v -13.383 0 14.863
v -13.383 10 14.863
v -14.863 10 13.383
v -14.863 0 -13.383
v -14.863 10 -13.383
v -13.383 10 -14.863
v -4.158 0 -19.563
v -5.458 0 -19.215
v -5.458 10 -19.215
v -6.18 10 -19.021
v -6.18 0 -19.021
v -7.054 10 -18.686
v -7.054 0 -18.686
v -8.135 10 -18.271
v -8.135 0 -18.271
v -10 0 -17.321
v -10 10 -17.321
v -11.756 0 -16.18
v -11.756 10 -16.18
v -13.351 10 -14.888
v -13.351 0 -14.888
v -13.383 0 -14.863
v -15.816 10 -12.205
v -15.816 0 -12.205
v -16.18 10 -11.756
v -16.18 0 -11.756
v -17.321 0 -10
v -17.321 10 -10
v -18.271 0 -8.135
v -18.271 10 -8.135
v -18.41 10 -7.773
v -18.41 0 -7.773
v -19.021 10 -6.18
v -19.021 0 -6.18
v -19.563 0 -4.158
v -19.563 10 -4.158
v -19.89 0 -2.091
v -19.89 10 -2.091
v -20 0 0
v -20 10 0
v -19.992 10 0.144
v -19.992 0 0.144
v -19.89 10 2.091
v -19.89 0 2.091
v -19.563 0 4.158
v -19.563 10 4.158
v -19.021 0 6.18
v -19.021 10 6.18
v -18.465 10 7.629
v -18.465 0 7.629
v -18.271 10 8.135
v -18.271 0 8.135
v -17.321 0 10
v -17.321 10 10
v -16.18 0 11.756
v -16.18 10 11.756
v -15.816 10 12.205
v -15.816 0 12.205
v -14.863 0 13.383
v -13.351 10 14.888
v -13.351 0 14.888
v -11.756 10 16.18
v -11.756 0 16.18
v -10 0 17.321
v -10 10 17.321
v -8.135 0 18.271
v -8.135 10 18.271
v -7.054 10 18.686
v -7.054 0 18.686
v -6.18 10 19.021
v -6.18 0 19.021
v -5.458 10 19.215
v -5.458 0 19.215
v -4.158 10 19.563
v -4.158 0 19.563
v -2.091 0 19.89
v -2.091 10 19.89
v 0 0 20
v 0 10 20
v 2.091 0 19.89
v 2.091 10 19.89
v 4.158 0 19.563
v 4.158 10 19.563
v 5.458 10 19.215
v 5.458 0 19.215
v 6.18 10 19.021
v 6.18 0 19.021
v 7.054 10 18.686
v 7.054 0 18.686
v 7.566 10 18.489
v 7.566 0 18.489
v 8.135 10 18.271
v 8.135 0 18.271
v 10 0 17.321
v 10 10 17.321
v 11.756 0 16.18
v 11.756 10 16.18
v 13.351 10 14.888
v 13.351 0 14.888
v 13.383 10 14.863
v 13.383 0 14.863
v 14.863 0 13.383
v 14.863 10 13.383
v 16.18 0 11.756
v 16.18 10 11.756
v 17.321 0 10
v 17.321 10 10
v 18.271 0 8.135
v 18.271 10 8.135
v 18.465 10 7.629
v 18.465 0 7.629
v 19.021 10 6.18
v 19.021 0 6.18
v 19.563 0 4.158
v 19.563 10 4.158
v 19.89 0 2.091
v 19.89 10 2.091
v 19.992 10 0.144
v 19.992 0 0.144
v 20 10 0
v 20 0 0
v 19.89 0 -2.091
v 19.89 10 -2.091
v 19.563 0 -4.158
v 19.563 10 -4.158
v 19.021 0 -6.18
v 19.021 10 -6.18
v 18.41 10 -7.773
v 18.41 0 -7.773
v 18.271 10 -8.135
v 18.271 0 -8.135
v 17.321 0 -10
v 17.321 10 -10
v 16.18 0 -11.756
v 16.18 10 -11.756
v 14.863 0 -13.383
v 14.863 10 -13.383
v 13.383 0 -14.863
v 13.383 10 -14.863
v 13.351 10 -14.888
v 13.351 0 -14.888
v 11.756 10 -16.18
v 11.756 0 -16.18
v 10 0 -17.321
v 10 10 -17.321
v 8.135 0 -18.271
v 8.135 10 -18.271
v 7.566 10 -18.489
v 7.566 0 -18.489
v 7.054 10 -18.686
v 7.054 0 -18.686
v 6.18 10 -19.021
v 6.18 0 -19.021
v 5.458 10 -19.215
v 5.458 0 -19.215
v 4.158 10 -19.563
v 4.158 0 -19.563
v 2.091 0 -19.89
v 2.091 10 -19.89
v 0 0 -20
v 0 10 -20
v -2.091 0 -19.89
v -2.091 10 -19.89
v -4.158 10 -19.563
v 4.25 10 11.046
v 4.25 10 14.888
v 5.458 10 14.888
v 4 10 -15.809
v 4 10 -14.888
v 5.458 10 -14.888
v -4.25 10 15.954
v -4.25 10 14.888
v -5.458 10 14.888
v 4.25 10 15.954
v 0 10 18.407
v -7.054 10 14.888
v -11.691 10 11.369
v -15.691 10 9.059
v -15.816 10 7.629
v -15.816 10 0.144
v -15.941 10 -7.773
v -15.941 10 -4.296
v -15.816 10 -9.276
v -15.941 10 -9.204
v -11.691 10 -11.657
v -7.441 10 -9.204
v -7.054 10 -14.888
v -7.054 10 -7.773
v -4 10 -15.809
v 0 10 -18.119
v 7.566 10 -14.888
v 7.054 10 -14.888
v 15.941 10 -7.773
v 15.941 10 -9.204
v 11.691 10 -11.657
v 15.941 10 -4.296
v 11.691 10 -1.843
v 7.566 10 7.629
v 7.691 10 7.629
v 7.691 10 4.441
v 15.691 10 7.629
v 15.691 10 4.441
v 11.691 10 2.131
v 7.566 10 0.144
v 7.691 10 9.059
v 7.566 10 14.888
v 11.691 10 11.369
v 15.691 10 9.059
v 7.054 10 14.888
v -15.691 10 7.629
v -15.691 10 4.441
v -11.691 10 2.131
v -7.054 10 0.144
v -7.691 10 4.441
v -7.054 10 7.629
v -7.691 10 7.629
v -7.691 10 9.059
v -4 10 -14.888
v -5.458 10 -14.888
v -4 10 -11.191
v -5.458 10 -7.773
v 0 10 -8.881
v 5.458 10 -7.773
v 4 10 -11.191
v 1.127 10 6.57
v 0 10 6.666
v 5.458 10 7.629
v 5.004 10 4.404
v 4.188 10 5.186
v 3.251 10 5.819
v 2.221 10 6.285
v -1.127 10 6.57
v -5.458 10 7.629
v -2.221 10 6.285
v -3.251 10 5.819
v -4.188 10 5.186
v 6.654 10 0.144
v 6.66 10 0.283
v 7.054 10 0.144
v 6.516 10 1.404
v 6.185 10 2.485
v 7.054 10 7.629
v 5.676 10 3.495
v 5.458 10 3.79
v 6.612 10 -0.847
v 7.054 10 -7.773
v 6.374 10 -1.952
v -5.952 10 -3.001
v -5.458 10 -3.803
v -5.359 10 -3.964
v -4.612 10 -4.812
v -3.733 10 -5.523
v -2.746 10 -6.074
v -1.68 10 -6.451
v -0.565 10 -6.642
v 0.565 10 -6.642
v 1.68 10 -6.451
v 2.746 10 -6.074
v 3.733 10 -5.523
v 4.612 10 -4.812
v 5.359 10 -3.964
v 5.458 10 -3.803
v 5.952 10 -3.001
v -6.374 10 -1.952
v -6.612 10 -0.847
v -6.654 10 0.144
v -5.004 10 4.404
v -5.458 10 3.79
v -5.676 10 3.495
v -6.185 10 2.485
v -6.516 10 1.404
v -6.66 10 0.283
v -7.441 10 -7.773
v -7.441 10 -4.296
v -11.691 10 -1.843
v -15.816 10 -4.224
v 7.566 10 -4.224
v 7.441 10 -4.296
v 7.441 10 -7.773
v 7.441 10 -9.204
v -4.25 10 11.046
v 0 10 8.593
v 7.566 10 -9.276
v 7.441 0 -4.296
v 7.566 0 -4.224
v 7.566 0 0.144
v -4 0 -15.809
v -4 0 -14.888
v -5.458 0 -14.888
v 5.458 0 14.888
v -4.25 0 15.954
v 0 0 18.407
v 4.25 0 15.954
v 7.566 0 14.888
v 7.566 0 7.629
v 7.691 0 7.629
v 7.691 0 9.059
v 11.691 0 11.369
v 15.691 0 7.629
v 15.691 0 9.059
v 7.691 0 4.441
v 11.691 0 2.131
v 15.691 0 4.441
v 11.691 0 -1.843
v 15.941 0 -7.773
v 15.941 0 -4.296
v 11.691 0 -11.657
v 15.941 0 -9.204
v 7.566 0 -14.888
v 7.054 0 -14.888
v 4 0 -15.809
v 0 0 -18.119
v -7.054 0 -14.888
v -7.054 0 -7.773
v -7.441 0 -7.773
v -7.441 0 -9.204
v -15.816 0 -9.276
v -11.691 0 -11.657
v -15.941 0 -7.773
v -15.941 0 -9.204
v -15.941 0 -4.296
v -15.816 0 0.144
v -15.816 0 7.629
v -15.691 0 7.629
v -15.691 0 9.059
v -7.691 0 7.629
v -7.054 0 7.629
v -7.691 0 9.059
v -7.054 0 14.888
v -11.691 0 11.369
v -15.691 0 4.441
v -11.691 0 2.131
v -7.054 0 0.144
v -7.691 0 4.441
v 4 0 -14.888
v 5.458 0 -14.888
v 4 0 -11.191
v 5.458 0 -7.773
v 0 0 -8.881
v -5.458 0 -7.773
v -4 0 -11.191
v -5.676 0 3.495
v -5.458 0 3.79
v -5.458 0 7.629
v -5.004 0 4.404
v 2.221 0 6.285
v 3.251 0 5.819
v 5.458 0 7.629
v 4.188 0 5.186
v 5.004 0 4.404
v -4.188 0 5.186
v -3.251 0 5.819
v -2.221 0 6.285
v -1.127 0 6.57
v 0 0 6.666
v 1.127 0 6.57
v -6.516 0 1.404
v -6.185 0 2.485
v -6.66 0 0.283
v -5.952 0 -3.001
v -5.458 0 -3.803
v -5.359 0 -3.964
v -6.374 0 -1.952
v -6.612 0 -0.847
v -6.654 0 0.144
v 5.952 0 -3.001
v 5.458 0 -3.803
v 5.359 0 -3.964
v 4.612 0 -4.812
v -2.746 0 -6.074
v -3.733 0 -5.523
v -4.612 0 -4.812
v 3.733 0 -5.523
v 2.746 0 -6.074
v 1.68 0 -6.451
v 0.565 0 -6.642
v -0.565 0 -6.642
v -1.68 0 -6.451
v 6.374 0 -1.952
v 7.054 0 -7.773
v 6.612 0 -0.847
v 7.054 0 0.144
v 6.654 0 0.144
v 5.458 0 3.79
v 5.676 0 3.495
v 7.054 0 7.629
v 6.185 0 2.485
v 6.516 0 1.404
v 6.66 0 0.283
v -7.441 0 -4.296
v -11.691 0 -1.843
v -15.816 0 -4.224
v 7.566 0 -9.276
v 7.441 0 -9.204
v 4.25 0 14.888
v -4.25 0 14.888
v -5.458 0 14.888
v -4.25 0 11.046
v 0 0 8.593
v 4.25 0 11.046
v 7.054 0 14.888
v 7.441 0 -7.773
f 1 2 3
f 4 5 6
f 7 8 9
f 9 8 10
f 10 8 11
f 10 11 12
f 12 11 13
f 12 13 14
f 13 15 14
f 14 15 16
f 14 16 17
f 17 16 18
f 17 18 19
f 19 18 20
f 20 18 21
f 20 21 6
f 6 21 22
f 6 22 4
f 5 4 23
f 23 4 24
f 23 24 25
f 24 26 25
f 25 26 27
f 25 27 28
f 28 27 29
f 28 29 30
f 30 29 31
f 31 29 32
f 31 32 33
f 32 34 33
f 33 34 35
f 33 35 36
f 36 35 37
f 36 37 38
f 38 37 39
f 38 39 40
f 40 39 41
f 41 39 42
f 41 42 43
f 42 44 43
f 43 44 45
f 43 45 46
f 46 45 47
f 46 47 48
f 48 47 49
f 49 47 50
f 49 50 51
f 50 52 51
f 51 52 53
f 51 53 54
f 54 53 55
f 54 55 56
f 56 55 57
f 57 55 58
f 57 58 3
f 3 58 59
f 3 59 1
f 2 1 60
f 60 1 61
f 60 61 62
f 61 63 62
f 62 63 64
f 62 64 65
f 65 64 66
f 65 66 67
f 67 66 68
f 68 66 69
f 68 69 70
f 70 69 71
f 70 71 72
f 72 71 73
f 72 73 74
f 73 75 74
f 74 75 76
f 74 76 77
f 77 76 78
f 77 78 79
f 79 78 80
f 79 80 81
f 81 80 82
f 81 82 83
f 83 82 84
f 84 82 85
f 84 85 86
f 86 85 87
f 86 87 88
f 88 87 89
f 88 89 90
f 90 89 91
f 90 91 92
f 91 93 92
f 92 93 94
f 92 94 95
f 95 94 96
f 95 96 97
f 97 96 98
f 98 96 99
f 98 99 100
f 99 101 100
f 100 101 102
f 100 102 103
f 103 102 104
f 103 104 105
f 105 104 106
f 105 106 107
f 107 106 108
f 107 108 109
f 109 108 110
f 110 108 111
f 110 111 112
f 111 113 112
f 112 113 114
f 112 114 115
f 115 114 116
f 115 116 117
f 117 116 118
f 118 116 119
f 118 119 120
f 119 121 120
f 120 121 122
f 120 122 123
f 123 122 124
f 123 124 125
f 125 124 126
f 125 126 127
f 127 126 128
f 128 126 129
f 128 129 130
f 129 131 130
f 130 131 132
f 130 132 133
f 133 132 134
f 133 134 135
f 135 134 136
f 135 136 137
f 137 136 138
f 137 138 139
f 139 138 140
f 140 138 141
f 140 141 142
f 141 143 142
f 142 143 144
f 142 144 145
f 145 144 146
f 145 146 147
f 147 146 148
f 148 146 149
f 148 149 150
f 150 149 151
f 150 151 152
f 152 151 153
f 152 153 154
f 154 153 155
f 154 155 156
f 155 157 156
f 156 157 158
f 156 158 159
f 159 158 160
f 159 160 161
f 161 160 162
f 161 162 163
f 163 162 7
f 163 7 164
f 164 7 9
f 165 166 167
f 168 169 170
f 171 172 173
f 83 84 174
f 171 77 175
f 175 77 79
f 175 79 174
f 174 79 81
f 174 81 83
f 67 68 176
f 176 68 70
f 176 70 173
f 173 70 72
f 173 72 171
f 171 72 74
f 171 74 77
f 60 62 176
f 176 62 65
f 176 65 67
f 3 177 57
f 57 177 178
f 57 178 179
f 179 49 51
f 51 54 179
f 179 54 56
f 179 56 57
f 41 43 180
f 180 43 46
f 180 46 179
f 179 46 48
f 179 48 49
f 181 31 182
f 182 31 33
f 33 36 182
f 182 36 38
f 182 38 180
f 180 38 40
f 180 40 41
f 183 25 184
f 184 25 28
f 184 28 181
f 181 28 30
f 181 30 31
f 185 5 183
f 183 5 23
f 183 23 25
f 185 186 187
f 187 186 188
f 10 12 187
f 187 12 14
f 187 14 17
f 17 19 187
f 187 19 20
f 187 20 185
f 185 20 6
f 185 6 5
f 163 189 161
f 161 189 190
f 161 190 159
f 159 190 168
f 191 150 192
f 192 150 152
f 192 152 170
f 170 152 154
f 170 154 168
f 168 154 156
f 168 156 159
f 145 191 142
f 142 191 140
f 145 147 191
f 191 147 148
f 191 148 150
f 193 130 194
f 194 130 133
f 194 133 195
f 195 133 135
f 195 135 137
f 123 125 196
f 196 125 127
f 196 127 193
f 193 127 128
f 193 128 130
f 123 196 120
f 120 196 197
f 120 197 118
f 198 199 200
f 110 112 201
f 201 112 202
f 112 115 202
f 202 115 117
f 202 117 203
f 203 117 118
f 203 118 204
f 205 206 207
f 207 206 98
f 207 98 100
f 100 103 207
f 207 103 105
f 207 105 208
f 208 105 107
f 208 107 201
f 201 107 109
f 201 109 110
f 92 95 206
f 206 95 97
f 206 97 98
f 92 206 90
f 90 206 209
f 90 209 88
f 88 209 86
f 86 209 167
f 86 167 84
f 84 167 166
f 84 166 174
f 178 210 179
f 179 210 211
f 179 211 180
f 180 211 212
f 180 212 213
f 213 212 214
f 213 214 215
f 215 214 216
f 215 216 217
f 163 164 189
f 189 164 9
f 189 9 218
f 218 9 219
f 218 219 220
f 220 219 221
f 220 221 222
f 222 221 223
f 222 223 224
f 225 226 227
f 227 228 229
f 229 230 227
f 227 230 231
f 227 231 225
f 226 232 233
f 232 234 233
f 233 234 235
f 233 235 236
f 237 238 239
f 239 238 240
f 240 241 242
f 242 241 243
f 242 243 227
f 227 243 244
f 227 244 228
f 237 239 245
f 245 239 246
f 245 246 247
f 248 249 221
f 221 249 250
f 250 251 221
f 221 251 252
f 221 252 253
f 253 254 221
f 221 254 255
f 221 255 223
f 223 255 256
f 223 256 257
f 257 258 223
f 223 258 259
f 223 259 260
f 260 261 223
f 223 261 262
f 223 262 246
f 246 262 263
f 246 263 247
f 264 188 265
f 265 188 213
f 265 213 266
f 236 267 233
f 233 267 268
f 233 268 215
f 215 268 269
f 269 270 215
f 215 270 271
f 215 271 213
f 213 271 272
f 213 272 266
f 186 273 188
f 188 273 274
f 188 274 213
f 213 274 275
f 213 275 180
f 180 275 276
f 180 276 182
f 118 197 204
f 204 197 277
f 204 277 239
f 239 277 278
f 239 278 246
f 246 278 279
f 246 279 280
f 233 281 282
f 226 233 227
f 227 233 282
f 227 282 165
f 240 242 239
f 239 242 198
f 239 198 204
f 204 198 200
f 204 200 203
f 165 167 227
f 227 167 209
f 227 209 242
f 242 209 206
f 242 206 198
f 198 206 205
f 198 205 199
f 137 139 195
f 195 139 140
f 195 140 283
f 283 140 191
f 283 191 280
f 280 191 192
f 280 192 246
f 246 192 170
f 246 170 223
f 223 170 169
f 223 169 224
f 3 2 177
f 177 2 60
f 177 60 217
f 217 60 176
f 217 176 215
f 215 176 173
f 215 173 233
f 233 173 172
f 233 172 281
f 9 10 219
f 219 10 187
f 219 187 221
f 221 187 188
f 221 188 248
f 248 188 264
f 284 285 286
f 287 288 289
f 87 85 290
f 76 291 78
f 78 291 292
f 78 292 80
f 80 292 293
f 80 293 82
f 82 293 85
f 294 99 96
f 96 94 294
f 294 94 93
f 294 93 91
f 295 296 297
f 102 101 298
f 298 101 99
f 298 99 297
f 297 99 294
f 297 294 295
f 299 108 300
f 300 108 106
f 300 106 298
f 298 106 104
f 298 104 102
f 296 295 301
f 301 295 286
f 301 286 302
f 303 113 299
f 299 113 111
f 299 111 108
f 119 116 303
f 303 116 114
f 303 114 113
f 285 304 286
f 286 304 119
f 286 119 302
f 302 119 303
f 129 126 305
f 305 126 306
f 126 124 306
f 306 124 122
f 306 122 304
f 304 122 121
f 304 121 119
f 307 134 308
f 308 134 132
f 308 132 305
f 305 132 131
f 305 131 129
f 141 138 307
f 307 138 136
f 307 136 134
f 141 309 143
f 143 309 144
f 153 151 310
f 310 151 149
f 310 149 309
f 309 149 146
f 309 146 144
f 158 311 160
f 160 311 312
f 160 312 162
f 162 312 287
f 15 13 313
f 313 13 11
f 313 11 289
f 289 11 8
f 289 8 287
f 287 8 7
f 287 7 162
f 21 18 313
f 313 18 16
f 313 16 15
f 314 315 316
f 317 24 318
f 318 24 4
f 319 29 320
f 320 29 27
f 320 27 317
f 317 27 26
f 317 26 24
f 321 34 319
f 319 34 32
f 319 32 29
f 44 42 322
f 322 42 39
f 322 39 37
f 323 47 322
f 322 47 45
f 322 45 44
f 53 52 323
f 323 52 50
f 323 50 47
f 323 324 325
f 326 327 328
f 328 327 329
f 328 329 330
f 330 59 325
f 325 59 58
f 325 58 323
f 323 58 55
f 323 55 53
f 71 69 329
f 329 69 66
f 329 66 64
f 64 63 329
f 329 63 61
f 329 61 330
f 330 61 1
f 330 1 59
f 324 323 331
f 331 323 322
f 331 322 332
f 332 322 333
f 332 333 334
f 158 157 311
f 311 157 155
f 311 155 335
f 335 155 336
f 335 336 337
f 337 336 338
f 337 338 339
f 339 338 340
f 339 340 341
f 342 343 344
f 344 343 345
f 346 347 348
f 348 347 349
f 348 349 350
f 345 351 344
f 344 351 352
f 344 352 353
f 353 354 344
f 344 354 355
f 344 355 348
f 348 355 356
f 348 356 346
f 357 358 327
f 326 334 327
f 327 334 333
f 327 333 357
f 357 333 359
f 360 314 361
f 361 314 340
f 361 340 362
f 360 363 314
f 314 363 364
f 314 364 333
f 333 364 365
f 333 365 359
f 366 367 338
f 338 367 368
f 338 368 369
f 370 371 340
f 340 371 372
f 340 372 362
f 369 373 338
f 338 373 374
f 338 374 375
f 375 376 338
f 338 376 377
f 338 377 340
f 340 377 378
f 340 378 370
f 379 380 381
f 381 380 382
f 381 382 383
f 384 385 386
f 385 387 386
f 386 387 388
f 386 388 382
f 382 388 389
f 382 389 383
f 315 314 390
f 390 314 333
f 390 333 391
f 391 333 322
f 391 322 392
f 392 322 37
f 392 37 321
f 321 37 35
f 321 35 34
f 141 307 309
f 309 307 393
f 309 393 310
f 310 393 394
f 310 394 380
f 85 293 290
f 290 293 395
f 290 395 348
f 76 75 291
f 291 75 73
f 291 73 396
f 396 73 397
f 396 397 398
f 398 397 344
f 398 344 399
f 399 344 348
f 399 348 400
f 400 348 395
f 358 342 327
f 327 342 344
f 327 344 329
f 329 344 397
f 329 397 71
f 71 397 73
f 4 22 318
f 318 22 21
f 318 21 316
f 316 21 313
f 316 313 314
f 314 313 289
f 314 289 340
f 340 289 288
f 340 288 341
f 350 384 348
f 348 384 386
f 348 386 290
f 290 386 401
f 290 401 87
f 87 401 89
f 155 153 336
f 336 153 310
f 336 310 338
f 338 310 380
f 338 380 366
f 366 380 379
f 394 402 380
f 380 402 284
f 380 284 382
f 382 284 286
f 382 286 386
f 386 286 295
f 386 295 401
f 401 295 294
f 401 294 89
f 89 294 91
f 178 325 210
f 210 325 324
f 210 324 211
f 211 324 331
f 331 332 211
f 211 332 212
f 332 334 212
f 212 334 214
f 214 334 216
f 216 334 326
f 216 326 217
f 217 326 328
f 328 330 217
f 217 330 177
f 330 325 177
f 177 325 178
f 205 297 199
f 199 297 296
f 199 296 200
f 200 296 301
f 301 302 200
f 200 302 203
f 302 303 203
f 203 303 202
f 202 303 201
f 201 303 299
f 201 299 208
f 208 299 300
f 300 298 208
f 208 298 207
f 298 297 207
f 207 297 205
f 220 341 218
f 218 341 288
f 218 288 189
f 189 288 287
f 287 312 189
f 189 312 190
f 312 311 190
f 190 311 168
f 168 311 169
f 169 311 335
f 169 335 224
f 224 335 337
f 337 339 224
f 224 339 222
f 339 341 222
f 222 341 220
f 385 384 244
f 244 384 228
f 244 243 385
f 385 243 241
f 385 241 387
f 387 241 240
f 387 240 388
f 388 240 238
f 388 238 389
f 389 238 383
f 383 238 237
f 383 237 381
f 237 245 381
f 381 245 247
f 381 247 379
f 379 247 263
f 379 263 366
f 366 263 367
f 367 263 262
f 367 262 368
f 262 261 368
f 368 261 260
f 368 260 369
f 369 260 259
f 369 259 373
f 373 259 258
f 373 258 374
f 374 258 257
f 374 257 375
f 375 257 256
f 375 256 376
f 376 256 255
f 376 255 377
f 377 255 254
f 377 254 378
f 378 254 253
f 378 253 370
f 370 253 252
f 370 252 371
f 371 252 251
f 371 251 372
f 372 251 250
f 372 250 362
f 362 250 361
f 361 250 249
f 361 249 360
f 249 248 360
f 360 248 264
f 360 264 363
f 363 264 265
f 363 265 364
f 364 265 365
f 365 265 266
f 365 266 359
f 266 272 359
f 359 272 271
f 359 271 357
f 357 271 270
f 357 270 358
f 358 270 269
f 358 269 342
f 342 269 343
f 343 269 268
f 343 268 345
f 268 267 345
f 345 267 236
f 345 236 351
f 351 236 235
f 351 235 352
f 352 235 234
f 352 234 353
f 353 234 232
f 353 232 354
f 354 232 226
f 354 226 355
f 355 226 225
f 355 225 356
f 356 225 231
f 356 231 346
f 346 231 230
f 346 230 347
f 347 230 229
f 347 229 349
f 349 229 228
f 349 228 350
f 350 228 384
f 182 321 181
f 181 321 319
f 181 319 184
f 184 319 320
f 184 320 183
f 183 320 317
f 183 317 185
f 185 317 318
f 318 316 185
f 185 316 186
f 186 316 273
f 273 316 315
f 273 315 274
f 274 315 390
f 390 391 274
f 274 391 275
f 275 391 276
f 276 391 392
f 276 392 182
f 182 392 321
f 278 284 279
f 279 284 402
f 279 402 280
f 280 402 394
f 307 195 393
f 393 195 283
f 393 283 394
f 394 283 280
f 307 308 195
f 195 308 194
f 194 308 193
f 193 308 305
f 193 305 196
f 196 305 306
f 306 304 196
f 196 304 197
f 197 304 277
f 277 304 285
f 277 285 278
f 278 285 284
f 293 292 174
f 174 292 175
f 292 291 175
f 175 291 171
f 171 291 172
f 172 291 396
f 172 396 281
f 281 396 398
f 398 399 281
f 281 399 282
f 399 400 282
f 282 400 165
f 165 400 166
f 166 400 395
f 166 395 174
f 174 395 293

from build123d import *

# Parameters (mm, degrees)
CROQUIS1_R              = 20
SALIENTE_EXTRUIR1_DEPTH = 10
CORTAR_EXTRUIR1_DEPTH   = 10
CROQUIS3_R              = 6.665733382
CORTAR_EXTRUIR2_DEPTH   = 10
CORTAR_EXTRUIR3_DEPTH   = 10


with BuildPart() as part:
    # Croquis1 → Saliente-Extruir1 (new body)
    with BuildSketch(Plane(origin=(0, 0, 0), x_dir=(1, 0, 0), z_dir=(0, 1, 0))):
        Circle(CROQUIS1_R)
    extrude(amount=SALIENTE_EXTRUIR1_DEPTH)

    # Croquis2 → Cortar-Extruir1 (cut)
    with BuildSketch(Plane(origin=(0, 10, 0), x_dir=(1, 0, 0), z_dir=(0, 1, 0))):
        Polygon((7.691342951, -4.440598923), (7.691342951, -9.059401077), (11.691342951, -11.368802154), (15.691342951, -9.059401077), (15.691342951, -4.440598923), (11.691342951, -2.131197846), align=None)
        Polygon((0, 8.881197846), (4, 11.190598923), (4, 15.809401077), (0, 18.118802154), (-4, 15.809401077), (-4, 11.190598923), align=None)
        Polygon((-7.691342951, -4.440598923), (-11.691342951, -2.131197846), (-15.691342951, -4.440598923), (-15.691342951, -9.059401077), (-11.691342951, -11.368802154), (-7.691342951, -9.059401077), align=None)
    extrude(amount=-CORTAR_EXTRUIR1_DEPTH, mode=Mode.SUBTRACT)

    # Croquis3 → Cortar-Extruir2 (cut)
    with BuildSketch(Plane(origin=(0, 10, 0), x_dir=(1, 0, 0), z_dir=(0, 1, 0))):
        Circle(CROQUIS3_R)
    extrude(amount=-CORTAR_EXTRUIR2_DEPTH, mode=Mode.SUBTRACT)

    # Croquis4 → Cortar-Extruir3 (cut)
    with BuildSketch(Plane(origin=(0, 10, 0), x_dir=(1, 0, 0), z_dir=(0, 1, 0))):
        Polygon((-11.691342951, 11.657477288), (-15.941342951, 9.203738644), (-15.941342951, 4.296261356), (-11.691342951, 1.842522712), (-7.441342951, 4.296261356), (-7.441342951, 9.203738644), align=None)
        Polygon((0, -18.407477288), (4.25, -15.953738644), (4.25, -11.046261356), (0, -8.592522712), (-4.25, -11.046261356), (-4.25, -15.953738644), align=None)
        Polygon((15.941342951, 4.296261356), (15.941342951, 9.203738644), (11.691342951, 11.657477288), (7.441342951, 9.203738644), (7.441342951, 4.296261356), (11.691342951, 1.842522712), align=None)
    extrude(amount=-CORTAR_EXTRUIR3_DEPTH, mode=Mode.SUBTRACT)


solid = part.part
